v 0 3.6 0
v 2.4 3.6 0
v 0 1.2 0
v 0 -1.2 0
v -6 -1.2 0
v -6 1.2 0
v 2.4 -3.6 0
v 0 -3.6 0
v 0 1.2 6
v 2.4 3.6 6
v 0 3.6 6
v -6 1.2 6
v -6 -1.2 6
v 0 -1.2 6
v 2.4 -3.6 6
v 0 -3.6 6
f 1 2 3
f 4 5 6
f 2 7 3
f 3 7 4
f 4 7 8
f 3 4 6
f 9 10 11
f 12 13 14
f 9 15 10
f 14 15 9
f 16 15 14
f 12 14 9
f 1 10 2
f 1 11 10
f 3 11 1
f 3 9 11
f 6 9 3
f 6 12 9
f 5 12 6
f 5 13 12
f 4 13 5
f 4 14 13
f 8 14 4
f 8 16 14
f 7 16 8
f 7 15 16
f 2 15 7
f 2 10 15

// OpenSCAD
// -*- mode: SCAD ; c-file-style: "ellemtel" ; coding: utf-8 -*-
//
// NN
//
// (c) 2017 Roland Sieker <ospalh@gmail.com>
// Licence: CC-BY-SA 4.0


zmin = 6;

h = 6;
w=6;
gr = 2.4;

gh=gr/2;

module p()
{
   polygon(
      [
         [-h,-gh],
         [0,-gh],
         [0,-gh-gr],
         [gr,-gh-gr],
         [gr,-gh],
         [gr,gh],
         [gr,gh+gr],
         [0,gh+gr],
         [0,gh],
         [-h,gh],
         ]
      );
}

module pt()
{
   linear_extrude(w)
   {
      p();
   }
}

pt();
translate([gr,0,w/2])
{
   rotate([0, 90,0])
   {
      //cylinder(r1=w/2,r2=0,h=gr);
   }
}
